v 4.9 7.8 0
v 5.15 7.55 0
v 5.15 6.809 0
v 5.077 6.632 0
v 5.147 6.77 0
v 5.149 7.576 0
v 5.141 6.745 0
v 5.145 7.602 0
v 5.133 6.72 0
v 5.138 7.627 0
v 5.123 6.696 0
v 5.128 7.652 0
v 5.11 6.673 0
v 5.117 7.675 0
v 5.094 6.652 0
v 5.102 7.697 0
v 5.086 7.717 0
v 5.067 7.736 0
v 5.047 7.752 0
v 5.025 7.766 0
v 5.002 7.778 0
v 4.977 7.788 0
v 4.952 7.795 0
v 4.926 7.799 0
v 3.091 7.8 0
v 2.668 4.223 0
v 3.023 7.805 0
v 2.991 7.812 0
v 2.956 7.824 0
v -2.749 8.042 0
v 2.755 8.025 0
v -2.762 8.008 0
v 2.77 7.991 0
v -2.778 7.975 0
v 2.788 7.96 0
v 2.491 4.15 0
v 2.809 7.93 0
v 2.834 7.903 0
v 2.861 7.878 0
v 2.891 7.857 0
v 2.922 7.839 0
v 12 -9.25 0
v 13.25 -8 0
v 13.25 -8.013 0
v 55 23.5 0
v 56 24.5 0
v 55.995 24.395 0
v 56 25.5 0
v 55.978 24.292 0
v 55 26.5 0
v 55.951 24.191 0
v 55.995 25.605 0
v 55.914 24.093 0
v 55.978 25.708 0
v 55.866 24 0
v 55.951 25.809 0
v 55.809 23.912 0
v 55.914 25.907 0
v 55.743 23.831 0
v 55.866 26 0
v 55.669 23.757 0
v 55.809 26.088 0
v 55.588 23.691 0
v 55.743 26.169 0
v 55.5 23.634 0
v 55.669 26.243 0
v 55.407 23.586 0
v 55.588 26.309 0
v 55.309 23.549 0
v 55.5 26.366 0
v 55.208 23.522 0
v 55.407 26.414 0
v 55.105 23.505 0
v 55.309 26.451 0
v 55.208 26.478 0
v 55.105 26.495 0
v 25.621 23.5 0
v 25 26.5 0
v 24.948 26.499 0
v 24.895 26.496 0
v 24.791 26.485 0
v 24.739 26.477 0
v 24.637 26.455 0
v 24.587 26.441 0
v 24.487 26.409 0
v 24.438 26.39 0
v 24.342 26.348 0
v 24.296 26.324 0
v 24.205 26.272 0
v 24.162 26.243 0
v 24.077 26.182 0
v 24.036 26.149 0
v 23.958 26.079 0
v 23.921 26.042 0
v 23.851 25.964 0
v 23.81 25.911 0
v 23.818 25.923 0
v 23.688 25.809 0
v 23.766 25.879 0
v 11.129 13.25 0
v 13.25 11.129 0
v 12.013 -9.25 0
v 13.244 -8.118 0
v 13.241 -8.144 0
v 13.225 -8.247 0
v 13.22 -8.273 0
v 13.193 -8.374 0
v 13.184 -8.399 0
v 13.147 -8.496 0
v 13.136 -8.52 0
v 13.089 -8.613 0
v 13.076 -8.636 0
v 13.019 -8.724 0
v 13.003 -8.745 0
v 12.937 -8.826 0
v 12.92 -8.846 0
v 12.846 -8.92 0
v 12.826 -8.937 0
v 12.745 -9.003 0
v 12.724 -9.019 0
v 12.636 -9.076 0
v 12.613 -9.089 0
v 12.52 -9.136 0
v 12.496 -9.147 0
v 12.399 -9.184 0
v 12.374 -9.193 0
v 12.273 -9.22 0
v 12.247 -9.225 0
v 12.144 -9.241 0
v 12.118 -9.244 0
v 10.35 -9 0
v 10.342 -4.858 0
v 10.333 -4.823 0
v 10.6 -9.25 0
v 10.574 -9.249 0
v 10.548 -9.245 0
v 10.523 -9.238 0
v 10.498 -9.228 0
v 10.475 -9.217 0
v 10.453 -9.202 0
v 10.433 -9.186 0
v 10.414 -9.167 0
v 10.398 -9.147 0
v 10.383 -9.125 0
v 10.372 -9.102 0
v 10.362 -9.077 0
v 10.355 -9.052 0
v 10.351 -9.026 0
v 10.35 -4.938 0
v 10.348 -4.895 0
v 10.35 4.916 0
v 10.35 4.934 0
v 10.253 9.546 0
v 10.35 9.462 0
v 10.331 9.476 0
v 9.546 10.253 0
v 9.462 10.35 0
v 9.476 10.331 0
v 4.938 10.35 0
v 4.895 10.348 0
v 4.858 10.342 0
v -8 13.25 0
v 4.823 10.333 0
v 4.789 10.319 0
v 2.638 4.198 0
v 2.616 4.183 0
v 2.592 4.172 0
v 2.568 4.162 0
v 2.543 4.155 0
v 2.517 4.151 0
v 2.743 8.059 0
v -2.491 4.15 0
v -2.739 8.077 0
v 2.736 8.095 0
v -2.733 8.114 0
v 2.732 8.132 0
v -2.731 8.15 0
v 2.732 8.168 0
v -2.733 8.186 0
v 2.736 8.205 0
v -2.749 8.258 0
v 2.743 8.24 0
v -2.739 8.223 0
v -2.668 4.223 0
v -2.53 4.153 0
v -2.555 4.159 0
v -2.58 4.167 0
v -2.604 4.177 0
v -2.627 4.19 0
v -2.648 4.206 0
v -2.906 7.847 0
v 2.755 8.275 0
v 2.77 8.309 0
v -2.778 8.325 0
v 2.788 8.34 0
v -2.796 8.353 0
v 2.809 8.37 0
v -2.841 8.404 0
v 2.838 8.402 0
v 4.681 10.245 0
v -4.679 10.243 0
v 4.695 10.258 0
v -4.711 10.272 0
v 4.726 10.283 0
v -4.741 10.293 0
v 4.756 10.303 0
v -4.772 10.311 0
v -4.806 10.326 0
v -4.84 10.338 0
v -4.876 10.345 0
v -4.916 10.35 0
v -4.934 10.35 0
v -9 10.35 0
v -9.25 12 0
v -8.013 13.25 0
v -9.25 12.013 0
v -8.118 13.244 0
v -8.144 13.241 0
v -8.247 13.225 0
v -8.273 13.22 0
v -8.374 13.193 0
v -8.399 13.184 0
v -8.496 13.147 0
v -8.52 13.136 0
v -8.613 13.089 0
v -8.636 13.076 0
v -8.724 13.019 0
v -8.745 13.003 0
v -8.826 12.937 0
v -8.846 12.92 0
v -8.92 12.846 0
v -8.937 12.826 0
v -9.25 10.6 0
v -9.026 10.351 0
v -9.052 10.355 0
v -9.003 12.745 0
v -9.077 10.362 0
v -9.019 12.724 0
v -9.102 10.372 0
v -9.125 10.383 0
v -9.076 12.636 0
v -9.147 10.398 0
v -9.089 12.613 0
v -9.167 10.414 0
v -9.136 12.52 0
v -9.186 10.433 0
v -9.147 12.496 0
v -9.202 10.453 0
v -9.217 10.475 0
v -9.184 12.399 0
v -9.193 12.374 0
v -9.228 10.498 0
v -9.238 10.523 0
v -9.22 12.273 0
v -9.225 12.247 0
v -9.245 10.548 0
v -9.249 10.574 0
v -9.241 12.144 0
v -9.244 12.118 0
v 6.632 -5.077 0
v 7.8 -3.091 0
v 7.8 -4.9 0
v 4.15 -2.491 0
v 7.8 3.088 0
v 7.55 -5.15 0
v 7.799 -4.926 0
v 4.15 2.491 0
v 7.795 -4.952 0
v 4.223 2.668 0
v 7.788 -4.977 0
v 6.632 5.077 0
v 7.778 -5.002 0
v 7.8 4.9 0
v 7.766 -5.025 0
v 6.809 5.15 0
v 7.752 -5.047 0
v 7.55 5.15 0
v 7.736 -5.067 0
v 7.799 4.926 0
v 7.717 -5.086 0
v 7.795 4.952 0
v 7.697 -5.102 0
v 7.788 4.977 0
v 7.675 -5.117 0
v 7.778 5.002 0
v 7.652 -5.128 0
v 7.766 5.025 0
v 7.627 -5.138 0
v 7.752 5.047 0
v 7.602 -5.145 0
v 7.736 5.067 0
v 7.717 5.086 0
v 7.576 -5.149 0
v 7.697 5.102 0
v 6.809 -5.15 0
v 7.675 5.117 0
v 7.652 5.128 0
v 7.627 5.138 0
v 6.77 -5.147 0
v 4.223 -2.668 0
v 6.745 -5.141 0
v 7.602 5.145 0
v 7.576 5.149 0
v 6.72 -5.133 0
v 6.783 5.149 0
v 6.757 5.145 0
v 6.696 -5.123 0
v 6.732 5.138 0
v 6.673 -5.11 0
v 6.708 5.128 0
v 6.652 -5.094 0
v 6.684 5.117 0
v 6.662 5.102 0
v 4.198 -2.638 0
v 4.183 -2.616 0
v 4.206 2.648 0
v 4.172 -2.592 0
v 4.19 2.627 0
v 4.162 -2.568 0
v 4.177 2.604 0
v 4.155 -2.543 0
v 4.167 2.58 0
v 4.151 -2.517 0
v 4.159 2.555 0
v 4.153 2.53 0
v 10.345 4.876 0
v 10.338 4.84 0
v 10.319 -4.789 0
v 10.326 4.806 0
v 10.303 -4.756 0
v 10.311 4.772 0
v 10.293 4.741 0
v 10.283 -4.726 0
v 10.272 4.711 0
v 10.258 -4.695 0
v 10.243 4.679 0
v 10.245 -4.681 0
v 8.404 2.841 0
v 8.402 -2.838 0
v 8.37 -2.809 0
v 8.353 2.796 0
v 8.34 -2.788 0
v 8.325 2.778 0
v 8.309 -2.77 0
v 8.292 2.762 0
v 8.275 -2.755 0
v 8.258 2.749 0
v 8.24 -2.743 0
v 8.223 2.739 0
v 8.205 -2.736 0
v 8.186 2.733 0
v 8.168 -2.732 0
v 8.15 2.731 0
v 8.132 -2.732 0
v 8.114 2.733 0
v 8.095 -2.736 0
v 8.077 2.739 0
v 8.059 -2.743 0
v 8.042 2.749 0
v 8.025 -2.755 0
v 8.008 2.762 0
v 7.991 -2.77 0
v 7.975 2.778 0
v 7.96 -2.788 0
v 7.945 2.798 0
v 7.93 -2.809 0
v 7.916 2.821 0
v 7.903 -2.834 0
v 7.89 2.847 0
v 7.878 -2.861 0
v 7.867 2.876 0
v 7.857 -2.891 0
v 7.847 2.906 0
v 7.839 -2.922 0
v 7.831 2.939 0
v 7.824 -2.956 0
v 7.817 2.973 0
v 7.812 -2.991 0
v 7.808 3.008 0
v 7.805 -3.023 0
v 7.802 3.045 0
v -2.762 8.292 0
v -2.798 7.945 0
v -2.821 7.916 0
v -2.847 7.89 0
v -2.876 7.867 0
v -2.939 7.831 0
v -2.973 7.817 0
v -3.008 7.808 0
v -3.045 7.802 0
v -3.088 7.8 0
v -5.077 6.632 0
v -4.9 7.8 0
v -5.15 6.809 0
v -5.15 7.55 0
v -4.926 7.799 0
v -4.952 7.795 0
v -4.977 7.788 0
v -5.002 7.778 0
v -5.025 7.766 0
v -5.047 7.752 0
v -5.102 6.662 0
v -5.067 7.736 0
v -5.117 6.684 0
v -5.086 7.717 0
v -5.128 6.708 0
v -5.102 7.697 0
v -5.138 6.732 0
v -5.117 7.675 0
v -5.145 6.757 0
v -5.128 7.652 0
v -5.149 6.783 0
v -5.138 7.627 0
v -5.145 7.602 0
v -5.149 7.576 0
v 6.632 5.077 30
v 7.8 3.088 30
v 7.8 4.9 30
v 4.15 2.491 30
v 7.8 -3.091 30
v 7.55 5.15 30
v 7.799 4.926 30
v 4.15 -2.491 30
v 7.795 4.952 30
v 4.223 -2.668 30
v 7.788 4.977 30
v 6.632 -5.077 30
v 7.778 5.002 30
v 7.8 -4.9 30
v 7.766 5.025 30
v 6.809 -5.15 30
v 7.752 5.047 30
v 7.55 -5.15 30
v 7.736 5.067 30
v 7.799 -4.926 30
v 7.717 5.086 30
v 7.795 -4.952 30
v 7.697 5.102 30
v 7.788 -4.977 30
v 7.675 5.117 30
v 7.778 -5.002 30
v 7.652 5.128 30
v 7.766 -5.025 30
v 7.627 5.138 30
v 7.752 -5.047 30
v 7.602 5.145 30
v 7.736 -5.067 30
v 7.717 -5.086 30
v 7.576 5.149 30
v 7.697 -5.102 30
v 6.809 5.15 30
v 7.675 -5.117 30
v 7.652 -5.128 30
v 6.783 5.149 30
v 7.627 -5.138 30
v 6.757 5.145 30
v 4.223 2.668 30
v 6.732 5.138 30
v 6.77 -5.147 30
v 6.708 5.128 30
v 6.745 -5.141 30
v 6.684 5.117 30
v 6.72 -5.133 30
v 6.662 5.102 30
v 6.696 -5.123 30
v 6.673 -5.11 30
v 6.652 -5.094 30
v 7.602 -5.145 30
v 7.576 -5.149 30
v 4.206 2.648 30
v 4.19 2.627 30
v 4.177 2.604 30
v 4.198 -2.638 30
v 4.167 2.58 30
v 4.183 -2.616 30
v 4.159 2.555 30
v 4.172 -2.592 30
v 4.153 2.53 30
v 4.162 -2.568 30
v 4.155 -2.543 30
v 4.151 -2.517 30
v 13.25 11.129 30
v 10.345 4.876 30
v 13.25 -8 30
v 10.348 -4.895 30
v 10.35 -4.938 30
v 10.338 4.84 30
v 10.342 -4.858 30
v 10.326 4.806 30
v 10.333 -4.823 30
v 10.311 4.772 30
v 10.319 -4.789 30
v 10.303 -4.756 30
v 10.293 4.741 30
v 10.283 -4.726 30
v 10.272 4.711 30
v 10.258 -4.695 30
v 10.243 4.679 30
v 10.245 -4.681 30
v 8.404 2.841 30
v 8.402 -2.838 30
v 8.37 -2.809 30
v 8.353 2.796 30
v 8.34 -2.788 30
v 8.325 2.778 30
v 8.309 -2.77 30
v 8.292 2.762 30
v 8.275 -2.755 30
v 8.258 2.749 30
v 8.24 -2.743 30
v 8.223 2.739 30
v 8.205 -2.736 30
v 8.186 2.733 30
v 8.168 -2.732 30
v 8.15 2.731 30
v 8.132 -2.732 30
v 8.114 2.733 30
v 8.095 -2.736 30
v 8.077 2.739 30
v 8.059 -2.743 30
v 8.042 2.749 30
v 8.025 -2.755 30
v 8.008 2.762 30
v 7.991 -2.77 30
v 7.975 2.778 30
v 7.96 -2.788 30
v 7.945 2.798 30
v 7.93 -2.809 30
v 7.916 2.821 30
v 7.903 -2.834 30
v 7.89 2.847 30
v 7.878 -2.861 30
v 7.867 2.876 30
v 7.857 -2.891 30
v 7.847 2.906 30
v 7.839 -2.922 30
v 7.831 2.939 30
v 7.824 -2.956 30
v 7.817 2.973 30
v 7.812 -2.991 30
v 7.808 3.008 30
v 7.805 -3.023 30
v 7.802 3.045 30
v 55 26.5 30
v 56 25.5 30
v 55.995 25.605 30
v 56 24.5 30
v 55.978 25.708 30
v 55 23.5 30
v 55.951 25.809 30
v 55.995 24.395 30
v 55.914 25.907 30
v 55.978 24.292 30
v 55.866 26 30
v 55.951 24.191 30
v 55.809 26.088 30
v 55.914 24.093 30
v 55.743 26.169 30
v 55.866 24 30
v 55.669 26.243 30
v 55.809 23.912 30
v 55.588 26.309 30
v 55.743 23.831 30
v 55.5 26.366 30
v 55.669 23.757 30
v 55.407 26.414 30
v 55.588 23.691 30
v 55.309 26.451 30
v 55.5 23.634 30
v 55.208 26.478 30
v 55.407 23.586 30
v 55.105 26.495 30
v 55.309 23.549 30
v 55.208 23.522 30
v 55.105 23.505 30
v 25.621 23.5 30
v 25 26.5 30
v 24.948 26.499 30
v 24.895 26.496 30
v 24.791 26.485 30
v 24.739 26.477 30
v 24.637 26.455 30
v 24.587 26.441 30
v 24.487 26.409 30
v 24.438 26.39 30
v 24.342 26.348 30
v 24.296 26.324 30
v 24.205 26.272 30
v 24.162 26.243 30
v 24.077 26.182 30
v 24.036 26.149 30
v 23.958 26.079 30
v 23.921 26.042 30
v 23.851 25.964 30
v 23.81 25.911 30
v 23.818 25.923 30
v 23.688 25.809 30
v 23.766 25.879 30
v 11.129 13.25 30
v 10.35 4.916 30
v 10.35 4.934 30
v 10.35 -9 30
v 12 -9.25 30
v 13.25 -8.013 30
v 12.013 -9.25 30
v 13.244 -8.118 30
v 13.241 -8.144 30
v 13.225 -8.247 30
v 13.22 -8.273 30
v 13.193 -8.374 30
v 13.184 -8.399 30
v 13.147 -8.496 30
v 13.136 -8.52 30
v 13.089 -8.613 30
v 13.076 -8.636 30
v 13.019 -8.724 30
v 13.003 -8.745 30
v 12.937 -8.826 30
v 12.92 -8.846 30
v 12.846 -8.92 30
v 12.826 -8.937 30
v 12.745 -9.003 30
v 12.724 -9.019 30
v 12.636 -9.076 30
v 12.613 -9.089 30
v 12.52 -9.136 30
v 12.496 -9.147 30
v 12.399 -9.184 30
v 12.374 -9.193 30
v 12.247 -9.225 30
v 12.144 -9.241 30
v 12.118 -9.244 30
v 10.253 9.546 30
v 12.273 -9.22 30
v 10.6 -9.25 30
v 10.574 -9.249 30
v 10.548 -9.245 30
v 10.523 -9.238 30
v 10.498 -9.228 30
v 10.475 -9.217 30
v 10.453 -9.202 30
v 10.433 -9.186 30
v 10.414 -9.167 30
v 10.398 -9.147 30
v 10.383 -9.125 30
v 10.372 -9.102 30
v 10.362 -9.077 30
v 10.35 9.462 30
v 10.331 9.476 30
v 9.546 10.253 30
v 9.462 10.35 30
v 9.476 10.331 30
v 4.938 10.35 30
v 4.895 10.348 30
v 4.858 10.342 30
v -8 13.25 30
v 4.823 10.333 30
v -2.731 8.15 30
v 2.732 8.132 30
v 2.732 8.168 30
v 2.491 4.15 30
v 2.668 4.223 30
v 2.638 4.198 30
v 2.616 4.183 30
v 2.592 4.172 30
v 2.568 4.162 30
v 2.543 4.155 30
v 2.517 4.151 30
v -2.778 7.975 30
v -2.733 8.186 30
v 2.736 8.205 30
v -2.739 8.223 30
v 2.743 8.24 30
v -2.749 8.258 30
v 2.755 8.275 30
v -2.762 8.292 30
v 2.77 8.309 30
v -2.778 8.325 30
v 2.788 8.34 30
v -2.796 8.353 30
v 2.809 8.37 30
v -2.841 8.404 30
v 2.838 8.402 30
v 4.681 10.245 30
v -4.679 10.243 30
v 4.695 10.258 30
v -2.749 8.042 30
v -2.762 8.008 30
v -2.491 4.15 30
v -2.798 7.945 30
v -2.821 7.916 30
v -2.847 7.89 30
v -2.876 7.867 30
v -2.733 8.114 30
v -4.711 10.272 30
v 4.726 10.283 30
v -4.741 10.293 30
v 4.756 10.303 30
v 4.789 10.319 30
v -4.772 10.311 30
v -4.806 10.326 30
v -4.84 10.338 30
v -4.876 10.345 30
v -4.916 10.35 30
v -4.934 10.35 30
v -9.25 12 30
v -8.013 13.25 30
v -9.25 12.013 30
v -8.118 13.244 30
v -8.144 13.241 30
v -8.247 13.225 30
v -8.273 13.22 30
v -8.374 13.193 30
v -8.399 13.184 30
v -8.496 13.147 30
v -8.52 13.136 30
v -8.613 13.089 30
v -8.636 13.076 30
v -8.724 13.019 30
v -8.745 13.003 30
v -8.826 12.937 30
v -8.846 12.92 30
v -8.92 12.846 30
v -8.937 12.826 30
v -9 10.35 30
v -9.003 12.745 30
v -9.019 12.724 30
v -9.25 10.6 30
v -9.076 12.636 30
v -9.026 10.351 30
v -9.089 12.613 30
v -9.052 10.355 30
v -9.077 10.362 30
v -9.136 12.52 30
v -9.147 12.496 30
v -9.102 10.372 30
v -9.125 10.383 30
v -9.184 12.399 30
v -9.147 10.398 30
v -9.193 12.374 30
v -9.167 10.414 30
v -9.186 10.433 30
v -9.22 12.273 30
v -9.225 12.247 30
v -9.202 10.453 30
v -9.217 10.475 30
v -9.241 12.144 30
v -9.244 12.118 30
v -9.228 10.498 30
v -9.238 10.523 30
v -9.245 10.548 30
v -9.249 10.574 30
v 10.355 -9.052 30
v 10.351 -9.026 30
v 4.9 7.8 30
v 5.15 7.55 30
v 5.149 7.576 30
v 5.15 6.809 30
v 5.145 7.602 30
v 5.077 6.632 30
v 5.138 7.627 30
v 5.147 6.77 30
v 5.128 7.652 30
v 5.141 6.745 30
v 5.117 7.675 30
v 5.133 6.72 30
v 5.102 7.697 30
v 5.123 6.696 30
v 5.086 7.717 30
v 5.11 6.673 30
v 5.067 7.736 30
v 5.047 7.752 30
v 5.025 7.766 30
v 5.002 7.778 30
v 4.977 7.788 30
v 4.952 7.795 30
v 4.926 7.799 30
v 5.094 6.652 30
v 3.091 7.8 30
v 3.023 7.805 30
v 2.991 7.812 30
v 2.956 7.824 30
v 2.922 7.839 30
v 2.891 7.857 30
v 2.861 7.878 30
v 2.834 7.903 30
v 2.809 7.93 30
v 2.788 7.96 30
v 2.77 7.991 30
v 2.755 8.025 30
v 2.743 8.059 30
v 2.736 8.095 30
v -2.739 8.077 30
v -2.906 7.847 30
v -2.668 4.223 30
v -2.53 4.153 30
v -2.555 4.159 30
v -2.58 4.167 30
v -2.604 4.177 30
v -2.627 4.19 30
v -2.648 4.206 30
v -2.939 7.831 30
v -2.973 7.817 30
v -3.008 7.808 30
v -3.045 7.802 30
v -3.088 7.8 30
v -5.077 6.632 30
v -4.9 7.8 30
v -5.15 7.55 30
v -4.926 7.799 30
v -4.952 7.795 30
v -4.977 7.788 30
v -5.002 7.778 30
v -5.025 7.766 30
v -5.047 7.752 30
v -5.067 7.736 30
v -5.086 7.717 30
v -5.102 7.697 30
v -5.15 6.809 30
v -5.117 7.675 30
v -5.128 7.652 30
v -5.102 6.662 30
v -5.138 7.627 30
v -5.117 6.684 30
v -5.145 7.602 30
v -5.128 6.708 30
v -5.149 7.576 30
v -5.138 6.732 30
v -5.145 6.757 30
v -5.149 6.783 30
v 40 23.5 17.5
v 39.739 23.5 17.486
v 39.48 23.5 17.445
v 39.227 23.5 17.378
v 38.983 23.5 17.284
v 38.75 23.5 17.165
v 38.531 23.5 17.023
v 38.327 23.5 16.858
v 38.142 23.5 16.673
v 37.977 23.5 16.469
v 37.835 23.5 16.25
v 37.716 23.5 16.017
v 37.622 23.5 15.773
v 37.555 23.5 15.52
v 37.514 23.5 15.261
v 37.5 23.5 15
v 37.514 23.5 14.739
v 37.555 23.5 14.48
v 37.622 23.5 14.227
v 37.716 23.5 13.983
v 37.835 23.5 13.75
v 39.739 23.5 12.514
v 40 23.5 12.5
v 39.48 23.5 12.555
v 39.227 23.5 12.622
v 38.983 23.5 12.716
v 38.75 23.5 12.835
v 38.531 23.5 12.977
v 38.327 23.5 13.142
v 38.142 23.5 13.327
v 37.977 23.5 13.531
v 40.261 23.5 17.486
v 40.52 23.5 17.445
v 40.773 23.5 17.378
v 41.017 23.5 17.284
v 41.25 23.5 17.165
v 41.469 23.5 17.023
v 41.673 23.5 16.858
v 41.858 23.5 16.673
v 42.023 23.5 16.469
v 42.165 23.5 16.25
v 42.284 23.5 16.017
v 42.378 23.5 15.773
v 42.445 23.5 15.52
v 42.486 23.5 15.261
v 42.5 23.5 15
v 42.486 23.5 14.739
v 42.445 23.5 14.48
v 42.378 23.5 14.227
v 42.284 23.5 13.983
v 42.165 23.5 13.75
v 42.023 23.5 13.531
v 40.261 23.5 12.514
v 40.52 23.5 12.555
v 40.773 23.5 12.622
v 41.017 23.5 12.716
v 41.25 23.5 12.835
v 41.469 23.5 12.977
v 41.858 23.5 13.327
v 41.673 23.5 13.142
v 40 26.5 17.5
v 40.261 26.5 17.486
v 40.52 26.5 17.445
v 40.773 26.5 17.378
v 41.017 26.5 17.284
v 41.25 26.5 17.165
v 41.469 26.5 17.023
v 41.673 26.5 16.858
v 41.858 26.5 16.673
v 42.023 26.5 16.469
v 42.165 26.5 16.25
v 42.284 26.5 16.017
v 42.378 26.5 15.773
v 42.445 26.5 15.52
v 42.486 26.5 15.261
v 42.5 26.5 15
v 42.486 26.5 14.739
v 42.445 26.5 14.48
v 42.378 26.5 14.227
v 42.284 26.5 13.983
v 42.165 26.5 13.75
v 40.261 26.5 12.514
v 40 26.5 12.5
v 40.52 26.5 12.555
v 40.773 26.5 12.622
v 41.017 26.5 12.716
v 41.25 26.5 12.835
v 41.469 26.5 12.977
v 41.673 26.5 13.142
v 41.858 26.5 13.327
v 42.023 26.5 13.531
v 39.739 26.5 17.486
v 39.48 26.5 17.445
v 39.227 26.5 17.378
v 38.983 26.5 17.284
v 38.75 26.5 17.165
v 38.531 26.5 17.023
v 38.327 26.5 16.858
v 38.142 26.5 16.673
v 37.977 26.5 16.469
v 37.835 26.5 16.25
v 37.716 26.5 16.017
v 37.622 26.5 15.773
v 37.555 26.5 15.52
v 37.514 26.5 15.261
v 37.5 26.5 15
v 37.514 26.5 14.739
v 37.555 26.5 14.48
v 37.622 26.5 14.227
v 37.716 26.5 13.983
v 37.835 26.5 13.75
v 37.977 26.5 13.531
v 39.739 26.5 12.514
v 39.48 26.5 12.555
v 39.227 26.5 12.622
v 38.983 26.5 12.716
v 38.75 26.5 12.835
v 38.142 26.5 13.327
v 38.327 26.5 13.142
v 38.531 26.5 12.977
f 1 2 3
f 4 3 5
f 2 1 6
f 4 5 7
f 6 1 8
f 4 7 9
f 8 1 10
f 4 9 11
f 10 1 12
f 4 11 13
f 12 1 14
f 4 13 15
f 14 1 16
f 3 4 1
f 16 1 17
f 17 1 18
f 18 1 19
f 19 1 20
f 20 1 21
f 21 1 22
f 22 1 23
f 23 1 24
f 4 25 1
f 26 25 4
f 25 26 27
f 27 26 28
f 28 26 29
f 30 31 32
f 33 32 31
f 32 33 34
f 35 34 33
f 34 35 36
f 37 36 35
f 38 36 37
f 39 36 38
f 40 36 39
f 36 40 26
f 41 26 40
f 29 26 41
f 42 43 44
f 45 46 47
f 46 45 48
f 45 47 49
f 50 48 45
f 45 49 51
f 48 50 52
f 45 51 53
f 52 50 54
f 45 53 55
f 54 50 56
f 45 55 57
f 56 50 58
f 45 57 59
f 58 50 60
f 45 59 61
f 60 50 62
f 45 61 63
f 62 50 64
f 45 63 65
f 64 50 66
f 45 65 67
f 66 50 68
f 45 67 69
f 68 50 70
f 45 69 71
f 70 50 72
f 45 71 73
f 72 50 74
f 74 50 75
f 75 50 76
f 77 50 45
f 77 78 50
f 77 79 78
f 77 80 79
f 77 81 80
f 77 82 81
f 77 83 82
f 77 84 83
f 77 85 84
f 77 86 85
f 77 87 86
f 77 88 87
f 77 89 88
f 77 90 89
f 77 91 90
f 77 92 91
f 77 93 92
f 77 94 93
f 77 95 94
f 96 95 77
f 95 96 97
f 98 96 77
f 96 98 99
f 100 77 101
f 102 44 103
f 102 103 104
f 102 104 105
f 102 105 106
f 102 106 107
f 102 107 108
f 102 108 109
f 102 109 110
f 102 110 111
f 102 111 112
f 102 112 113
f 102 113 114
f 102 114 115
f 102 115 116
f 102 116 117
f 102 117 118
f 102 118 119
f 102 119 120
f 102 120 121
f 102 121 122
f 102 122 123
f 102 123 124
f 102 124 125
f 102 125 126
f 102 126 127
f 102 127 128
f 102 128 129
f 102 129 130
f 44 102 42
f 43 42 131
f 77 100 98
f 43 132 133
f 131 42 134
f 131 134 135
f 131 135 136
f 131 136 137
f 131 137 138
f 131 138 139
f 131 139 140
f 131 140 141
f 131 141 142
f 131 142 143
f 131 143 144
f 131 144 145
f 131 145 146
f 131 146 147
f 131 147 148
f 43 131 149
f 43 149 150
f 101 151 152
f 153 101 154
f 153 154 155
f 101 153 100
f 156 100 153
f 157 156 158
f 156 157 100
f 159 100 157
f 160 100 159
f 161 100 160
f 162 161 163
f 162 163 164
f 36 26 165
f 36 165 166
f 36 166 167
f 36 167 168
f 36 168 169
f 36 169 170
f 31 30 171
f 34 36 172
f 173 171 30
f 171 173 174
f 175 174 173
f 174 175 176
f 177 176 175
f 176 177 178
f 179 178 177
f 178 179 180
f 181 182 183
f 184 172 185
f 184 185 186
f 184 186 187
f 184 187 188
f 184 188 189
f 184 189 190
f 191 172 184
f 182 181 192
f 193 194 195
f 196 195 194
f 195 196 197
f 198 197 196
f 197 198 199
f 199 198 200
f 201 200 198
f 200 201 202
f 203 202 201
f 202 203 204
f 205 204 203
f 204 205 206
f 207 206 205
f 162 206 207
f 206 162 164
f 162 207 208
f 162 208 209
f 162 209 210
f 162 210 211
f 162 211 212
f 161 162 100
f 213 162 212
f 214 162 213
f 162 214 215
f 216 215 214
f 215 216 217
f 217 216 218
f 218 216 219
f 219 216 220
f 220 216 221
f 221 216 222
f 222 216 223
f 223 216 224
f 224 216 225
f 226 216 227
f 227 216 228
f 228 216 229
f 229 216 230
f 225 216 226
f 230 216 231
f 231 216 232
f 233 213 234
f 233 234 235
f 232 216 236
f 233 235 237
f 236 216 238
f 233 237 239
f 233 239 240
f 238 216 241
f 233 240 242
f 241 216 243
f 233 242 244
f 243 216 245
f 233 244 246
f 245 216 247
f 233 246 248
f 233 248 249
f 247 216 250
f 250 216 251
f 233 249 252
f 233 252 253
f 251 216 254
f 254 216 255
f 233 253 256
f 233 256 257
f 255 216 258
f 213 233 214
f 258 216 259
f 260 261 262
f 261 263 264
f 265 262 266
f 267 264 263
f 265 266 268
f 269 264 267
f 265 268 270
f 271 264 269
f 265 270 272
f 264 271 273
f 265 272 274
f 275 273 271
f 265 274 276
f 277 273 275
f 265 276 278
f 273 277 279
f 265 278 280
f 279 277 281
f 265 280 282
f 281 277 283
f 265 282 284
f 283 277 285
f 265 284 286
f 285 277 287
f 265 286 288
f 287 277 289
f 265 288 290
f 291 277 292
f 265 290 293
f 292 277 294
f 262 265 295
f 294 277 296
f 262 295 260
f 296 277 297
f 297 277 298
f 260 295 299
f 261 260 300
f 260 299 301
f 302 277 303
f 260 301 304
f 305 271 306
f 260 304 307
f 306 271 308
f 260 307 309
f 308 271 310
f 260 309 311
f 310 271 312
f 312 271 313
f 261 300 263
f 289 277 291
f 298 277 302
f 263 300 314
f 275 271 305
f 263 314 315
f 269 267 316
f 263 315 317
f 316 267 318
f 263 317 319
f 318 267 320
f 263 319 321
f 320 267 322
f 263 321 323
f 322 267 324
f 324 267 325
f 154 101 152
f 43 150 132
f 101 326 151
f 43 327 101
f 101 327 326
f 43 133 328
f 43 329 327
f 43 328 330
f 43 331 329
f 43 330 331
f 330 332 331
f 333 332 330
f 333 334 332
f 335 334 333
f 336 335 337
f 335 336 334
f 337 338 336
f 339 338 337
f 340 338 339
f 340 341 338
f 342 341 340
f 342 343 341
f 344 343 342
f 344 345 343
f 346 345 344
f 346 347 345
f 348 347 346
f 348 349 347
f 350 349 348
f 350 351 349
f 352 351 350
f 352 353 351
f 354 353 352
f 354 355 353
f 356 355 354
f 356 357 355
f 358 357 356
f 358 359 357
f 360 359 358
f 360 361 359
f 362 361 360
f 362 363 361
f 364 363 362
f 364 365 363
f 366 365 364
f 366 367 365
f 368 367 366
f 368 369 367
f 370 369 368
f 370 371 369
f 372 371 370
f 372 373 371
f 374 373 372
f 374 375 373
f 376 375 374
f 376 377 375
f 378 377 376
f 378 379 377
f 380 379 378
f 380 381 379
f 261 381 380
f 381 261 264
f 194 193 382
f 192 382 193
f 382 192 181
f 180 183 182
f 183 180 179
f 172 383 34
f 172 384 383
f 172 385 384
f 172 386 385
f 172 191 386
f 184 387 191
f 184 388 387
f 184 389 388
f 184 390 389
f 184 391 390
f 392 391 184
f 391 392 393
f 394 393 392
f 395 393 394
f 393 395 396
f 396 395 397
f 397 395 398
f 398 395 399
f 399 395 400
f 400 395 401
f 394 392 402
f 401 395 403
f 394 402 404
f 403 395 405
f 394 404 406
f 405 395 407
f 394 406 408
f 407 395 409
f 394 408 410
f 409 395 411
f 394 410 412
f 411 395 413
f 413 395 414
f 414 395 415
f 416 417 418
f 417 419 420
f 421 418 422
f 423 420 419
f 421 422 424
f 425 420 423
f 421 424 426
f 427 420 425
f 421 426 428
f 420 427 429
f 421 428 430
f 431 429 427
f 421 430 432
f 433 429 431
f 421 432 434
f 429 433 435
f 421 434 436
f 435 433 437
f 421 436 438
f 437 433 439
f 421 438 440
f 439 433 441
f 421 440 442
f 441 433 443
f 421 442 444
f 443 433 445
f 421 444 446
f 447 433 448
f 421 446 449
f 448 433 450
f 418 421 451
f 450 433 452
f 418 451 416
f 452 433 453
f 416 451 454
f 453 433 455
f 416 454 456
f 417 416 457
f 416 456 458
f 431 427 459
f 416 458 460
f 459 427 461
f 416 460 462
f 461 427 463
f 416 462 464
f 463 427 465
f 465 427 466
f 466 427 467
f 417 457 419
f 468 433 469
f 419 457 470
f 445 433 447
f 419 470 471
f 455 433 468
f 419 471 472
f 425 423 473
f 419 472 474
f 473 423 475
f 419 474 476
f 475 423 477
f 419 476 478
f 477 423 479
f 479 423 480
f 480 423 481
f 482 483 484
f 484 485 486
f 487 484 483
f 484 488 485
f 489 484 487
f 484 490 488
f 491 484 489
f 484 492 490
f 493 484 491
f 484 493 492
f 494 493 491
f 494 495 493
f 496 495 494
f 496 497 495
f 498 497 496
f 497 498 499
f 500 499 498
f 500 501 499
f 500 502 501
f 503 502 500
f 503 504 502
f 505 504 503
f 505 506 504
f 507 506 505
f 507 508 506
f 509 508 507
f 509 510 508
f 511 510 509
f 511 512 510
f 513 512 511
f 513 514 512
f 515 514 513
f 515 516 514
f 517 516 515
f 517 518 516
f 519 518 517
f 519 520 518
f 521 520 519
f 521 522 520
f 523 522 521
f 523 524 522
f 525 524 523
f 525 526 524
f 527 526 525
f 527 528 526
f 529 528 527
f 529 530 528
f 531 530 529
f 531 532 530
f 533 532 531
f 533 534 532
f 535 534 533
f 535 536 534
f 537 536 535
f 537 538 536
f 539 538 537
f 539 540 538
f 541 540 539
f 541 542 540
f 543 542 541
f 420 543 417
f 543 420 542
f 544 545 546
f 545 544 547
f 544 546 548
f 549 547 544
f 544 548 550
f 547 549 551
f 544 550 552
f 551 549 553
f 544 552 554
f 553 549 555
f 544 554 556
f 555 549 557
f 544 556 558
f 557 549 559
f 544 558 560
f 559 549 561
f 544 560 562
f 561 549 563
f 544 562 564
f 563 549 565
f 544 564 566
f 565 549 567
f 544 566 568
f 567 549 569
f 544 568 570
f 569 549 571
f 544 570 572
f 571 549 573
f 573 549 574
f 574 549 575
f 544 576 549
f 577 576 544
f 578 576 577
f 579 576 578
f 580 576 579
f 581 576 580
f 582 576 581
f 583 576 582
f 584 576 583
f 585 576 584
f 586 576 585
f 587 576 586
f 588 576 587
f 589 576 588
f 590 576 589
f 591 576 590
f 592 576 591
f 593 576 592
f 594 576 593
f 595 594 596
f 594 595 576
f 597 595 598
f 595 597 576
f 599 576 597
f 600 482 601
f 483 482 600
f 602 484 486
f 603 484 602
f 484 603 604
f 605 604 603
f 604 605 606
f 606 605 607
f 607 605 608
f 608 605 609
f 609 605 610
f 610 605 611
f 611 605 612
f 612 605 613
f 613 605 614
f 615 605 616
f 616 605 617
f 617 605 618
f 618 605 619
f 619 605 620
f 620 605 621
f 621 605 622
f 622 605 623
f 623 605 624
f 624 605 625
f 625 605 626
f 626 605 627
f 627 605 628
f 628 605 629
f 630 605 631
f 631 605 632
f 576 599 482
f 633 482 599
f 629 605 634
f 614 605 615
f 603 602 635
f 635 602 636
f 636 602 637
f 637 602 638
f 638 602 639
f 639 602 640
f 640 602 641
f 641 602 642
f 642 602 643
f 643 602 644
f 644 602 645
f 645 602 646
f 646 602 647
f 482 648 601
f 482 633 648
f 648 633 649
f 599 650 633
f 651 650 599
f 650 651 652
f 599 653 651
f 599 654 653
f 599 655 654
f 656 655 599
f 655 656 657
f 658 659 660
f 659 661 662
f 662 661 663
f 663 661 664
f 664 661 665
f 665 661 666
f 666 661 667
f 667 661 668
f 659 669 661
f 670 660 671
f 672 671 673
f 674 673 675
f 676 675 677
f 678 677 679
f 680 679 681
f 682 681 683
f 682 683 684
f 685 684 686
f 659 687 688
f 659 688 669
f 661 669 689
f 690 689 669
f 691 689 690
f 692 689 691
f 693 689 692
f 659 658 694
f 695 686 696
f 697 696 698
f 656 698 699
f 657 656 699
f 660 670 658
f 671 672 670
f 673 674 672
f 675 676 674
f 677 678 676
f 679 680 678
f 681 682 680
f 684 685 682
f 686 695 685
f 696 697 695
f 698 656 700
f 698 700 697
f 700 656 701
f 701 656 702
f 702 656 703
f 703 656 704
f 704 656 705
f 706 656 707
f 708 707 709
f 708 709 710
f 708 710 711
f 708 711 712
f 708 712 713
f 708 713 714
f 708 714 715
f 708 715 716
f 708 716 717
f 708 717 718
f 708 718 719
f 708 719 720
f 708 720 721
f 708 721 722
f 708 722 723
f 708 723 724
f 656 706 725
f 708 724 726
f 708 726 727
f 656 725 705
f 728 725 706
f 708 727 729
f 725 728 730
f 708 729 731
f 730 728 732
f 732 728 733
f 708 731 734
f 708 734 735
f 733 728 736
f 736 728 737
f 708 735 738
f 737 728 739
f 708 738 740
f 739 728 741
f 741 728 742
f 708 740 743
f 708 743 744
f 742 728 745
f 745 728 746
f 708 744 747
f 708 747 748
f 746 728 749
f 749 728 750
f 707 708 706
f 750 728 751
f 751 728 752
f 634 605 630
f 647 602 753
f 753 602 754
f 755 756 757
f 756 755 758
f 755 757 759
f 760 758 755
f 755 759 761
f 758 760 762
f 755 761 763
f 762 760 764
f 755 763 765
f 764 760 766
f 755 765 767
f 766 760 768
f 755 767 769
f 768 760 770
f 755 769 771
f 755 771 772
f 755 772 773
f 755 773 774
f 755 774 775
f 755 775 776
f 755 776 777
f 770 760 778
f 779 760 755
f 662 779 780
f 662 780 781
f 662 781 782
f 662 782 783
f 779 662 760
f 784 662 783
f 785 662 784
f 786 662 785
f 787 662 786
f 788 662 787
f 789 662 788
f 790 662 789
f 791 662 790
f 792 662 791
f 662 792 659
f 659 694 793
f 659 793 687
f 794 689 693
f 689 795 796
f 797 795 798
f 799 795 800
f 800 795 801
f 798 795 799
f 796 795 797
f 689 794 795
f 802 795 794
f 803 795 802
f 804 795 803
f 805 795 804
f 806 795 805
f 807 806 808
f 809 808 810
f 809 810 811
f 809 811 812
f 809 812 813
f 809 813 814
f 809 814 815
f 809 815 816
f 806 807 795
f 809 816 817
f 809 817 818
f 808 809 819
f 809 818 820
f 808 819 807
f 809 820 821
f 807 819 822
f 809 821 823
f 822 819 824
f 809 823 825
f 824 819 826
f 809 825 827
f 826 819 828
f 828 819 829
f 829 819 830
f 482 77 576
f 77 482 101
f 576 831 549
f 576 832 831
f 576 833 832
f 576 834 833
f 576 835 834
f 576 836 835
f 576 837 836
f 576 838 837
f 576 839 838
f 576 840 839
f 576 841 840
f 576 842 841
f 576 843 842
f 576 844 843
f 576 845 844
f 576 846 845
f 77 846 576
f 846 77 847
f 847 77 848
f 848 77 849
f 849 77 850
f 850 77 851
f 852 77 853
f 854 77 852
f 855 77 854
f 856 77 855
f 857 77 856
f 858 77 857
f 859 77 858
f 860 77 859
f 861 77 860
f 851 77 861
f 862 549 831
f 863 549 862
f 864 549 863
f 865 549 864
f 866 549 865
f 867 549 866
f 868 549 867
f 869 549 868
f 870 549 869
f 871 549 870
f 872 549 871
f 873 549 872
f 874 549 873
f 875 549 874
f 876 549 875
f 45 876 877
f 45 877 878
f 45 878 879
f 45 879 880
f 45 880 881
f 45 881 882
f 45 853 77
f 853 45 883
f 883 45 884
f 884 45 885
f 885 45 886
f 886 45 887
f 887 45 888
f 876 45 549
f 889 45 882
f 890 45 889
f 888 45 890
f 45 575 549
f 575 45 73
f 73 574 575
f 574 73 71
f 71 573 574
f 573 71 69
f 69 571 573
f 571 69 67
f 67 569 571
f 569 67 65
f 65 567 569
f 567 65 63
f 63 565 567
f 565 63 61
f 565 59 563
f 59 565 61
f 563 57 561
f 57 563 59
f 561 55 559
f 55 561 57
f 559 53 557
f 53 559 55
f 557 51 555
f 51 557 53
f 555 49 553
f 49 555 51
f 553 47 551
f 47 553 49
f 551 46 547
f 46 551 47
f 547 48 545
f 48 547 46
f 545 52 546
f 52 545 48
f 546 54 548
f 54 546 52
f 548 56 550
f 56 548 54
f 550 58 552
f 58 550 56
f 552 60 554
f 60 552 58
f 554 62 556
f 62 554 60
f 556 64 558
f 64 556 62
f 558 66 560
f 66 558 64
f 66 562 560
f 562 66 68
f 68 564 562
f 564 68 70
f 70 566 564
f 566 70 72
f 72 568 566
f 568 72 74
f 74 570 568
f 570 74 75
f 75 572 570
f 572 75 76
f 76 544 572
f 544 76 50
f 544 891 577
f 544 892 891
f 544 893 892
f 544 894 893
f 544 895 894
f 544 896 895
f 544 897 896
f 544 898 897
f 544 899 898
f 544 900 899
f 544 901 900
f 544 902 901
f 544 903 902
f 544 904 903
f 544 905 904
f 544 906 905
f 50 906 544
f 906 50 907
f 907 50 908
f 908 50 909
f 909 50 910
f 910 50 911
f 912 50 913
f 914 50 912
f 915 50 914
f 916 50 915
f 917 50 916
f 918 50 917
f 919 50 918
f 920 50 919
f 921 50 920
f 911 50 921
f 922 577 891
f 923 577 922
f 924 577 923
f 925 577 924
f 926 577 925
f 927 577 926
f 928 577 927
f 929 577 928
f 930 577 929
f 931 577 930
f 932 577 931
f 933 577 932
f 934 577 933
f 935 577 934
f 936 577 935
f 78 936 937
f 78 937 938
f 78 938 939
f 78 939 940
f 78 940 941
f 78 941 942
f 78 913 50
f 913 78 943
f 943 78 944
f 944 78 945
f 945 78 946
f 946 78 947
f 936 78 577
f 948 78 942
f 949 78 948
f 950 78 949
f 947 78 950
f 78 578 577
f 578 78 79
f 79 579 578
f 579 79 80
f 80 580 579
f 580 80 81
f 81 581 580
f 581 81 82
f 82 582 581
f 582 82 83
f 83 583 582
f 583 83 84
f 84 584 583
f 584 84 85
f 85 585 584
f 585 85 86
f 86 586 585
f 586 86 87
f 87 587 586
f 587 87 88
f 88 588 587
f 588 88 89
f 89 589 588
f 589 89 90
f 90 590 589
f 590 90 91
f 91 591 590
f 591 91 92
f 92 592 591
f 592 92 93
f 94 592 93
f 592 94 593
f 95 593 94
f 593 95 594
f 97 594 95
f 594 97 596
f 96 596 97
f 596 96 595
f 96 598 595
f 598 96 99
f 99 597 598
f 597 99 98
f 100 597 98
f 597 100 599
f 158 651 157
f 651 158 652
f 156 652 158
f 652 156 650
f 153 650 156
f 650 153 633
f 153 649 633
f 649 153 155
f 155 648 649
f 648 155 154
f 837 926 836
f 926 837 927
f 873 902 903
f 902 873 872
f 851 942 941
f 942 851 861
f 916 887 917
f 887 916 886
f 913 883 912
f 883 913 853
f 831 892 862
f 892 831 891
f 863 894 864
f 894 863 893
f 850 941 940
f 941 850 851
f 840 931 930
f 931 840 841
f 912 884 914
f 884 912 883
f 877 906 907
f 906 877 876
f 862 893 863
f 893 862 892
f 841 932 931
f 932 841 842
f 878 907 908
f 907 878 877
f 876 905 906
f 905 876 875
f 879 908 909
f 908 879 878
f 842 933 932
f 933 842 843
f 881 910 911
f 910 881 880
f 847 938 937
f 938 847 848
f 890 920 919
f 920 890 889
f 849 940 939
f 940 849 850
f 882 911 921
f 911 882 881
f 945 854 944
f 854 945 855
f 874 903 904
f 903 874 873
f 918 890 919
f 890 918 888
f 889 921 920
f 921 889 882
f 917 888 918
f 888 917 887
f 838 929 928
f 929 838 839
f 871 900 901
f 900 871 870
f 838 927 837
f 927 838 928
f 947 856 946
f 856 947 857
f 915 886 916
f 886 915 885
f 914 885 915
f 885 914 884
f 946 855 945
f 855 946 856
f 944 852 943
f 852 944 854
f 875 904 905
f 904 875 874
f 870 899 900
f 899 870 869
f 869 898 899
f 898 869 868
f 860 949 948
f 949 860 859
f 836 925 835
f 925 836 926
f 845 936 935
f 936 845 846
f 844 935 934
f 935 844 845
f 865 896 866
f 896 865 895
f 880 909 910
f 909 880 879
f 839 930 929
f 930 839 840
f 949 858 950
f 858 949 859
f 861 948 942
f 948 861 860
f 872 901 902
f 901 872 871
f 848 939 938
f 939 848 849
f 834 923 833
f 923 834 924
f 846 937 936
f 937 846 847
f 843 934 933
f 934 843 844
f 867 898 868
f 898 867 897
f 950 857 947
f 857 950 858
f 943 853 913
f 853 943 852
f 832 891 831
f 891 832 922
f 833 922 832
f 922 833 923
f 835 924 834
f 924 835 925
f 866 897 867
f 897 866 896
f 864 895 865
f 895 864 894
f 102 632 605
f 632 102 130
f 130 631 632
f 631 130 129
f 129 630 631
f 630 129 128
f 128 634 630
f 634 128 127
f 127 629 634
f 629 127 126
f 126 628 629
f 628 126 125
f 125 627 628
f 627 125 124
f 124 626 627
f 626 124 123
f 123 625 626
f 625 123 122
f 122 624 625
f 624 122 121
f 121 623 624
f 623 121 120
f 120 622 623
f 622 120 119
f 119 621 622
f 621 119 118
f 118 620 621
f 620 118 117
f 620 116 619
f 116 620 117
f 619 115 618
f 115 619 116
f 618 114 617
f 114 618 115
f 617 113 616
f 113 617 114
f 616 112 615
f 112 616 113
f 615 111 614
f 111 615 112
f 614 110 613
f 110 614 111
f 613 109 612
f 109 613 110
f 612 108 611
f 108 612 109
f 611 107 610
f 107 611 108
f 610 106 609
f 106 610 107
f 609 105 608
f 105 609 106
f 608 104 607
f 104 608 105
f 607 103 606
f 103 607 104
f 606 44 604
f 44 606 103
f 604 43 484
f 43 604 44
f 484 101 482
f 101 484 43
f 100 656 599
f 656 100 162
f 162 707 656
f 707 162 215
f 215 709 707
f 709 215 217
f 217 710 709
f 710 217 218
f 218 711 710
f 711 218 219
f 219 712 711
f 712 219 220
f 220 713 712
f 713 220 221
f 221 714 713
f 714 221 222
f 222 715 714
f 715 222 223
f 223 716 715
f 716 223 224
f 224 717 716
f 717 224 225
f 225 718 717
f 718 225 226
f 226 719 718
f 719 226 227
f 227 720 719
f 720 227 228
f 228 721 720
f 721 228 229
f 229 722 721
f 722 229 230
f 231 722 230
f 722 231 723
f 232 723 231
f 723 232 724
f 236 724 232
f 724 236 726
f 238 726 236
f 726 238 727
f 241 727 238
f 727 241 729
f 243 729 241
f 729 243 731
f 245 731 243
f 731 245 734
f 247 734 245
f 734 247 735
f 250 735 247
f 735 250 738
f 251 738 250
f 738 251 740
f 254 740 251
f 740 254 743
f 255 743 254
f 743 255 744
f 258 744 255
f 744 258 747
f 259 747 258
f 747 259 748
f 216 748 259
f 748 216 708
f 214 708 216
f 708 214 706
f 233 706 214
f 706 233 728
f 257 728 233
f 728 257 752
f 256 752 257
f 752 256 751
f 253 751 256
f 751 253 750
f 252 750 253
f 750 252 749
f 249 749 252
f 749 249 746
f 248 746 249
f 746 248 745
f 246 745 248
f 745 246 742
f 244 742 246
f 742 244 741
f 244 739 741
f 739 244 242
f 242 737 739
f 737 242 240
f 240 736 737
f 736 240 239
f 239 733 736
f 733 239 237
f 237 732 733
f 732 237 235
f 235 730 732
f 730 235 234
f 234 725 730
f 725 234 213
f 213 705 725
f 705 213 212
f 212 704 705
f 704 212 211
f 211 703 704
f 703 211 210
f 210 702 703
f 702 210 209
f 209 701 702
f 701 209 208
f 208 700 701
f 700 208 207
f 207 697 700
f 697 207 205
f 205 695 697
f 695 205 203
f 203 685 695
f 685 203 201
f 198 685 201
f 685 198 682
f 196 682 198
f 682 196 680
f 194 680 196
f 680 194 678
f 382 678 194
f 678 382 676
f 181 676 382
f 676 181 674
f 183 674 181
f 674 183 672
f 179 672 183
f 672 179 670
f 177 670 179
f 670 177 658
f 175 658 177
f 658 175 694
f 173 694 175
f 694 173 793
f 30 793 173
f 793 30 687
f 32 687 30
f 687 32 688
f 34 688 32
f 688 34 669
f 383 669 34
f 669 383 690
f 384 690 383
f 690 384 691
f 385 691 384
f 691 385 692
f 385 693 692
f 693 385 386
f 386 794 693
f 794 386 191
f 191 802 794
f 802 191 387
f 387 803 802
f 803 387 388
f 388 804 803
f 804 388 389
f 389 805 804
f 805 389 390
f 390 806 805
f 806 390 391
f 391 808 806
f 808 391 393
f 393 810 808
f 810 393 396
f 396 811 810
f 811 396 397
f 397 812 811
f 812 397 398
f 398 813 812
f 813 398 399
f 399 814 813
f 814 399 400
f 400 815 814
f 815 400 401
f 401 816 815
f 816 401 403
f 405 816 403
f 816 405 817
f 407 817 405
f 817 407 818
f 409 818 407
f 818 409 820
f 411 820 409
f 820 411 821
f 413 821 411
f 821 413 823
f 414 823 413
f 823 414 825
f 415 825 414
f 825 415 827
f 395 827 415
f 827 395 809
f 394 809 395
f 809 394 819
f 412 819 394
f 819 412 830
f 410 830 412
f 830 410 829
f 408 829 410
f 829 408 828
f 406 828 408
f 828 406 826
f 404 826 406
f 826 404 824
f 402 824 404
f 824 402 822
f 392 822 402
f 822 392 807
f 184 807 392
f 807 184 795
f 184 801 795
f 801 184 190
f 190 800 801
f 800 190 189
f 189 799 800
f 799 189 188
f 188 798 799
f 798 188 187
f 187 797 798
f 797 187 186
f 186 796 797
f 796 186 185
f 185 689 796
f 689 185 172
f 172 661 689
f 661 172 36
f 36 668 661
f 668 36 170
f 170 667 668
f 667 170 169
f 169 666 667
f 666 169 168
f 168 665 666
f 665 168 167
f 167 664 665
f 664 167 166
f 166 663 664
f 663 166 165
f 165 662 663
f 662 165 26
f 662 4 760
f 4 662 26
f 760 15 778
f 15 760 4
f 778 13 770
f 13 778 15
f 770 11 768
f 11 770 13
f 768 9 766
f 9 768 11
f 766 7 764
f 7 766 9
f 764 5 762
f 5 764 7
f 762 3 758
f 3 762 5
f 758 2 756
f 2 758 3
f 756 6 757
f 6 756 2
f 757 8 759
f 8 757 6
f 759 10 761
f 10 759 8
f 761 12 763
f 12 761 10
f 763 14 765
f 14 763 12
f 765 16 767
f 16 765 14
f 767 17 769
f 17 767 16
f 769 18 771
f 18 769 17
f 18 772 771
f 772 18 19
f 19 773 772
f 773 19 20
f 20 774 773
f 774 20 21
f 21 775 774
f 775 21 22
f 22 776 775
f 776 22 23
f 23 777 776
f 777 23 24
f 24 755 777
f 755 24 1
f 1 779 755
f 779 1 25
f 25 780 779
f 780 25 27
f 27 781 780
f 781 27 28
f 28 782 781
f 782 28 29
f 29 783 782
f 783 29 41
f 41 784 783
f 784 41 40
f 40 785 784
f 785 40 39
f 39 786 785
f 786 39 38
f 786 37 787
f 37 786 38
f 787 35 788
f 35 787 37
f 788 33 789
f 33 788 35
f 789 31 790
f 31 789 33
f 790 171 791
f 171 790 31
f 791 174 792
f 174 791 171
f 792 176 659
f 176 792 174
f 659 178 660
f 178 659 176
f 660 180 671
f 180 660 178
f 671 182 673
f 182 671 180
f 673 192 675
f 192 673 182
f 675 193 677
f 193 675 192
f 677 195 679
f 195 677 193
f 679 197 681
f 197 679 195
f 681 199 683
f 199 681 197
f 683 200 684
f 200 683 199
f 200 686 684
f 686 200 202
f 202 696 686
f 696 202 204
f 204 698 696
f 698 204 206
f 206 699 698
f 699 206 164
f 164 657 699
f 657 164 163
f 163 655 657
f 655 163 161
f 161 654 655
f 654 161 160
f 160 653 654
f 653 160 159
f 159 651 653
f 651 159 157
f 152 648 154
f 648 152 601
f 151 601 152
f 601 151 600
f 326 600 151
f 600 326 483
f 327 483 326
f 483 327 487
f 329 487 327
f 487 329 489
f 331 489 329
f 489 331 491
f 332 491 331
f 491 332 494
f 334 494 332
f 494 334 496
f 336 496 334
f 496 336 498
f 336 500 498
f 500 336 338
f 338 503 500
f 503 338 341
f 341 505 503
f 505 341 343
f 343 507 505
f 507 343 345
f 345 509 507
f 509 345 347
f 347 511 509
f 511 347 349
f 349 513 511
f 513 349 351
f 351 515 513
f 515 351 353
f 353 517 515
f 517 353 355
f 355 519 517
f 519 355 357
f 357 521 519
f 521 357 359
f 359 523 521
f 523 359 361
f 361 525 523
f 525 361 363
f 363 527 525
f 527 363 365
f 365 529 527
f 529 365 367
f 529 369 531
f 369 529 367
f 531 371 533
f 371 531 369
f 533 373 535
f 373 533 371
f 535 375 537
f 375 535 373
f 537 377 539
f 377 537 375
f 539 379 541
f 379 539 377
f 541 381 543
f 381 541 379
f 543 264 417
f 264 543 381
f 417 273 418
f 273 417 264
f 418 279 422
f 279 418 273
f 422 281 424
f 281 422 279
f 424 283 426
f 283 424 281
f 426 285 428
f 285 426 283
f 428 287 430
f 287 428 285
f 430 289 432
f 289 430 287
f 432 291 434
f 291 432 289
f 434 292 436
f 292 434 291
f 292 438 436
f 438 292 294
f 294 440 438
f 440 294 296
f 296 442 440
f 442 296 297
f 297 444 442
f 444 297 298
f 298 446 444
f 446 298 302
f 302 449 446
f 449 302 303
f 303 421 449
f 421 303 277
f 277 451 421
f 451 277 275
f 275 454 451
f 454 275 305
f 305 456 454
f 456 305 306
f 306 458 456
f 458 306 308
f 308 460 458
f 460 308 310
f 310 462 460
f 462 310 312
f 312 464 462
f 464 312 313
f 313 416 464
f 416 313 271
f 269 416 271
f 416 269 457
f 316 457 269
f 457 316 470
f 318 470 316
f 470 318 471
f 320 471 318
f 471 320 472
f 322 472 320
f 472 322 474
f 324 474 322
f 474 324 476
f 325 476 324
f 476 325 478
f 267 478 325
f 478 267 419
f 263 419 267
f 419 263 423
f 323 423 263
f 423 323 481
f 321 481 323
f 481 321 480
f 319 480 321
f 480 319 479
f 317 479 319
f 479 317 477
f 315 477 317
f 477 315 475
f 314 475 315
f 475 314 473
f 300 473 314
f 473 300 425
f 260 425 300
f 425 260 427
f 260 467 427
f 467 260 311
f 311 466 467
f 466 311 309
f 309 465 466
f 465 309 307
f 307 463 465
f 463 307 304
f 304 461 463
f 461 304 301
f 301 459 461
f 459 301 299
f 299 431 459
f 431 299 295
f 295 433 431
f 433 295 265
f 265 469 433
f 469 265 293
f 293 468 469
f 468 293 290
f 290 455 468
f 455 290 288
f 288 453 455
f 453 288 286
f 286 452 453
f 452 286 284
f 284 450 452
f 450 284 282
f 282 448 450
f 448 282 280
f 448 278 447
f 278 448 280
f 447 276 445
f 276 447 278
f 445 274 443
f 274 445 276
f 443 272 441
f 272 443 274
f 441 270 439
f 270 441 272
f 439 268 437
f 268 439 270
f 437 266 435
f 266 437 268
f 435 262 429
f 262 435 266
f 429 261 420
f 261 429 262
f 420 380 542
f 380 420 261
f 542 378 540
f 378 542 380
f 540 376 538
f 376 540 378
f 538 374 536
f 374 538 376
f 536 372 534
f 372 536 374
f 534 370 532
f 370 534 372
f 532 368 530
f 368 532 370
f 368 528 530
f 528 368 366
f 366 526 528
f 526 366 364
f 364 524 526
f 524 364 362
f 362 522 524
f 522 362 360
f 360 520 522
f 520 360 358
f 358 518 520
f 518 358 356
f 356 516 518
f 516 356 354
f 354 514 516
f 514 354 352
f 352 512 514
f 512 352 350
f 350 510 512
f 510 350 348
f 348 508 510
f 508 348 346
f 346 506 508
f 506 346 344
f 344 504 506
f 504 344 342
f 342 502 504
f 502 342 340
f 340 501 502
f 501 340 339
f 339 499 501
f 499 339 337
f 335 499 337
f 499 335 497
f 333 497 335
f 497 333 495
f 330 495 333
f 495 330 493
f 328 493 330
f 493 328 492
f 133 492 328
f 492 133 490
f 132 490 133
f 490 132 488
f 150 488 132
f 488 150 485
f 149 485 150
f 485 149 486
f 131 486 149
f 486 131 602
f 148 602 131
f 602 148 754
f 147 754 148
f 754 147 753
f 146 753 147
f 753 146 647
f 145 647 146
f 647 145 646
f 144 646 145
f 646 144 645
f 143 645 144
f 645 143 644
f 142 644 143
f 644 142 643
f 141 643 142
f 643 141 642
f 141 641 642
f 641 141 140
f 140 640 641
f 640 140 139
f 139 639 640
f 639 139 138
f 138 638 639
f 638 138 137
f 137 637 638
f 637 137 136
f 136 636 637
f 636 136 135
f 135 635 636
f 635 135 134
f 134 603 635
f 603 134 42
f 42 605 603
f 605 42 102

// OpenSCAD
$fn = 60;

module vslot_profile() {
    difference() {
        square([20, 20], center = true);
        square([20 - 1.85 * 2, 20 - 1.85 * 2], center = true);
        translate([12.14, 0, 0]) rotate([0, 0, 45]) square([10, 10], center = true);
        translate([-12.14, 0, 0]) rotate([0, 0, 45]) square([10, 10], center = true);
        translate([0, 12.14, 0]) rotate([0, 0, 45]) square([10, 10], center = true);
        translate([0, -12.14, 0]) rotate([0, 0, 45]) square([10, 10], center = true);
    }

    difference() {
        square([20 - 6.2 * 2, 20 - 6.2 * 2], center = true);
        circle(d = 4.2);
    }

    difference() {
        intersection() {
            union() {
                rotate([0, 0, 45]) square([1.5, 100], center = true);
                rotate([0, 0, -45]) square([1.5, 100], center = true);
                translate([(5.5 + 4.5 / 2) * +1, (5.5 + 4.5 / 2) * +1, 0]) square([4.5, 4.5], center = true);
                translate([(5.5 + 4.5 / 2) * -1, (5.5 + 4.5 / 2) * +1, 0]) square([4.5, 4.5], center = true);
                translate([(5.5 + 4.5 / 2) * +1, (5.5 + 4.5 / 2) * -1, 0]) square([4.5, 4.5], center = true);
                translate([(5.5 + 4.5 / 2) * -1, (5.5 + 4.5 / 2) * -1, 0]) square([4.5, 4.5], center = true);
            }
            square([20, 20], center = true);
        }
        circle(d = 4.2);
    }
}

linear_extrude(30) offset(.25) difference() {
    translate([2, 2, 0]) offset(1) square([20, 20], center = true);
    offset(.6) vslot_profile();
    square([20 - 6.2 * 2, 20 - 6.2 * 2], center = true);
    rotate([0, 0, -135]) translate([0, -50, 0]) square([100, 100]);
}

difference() {
    linear_extrude(30) offset(1) union() {
        rotate([0, 0, 45]) translate([25, 0, 0]) square([20, 1], center = true);
        translate([40, 25, 0]) square([30, 1], center = true);
        translate([25, 25, 0]) circle(d = 1);
    }
    translate([40, 20, 15]) rotate([-90, 0, 0]) #cylinder(h = 10, d = 5);
}
